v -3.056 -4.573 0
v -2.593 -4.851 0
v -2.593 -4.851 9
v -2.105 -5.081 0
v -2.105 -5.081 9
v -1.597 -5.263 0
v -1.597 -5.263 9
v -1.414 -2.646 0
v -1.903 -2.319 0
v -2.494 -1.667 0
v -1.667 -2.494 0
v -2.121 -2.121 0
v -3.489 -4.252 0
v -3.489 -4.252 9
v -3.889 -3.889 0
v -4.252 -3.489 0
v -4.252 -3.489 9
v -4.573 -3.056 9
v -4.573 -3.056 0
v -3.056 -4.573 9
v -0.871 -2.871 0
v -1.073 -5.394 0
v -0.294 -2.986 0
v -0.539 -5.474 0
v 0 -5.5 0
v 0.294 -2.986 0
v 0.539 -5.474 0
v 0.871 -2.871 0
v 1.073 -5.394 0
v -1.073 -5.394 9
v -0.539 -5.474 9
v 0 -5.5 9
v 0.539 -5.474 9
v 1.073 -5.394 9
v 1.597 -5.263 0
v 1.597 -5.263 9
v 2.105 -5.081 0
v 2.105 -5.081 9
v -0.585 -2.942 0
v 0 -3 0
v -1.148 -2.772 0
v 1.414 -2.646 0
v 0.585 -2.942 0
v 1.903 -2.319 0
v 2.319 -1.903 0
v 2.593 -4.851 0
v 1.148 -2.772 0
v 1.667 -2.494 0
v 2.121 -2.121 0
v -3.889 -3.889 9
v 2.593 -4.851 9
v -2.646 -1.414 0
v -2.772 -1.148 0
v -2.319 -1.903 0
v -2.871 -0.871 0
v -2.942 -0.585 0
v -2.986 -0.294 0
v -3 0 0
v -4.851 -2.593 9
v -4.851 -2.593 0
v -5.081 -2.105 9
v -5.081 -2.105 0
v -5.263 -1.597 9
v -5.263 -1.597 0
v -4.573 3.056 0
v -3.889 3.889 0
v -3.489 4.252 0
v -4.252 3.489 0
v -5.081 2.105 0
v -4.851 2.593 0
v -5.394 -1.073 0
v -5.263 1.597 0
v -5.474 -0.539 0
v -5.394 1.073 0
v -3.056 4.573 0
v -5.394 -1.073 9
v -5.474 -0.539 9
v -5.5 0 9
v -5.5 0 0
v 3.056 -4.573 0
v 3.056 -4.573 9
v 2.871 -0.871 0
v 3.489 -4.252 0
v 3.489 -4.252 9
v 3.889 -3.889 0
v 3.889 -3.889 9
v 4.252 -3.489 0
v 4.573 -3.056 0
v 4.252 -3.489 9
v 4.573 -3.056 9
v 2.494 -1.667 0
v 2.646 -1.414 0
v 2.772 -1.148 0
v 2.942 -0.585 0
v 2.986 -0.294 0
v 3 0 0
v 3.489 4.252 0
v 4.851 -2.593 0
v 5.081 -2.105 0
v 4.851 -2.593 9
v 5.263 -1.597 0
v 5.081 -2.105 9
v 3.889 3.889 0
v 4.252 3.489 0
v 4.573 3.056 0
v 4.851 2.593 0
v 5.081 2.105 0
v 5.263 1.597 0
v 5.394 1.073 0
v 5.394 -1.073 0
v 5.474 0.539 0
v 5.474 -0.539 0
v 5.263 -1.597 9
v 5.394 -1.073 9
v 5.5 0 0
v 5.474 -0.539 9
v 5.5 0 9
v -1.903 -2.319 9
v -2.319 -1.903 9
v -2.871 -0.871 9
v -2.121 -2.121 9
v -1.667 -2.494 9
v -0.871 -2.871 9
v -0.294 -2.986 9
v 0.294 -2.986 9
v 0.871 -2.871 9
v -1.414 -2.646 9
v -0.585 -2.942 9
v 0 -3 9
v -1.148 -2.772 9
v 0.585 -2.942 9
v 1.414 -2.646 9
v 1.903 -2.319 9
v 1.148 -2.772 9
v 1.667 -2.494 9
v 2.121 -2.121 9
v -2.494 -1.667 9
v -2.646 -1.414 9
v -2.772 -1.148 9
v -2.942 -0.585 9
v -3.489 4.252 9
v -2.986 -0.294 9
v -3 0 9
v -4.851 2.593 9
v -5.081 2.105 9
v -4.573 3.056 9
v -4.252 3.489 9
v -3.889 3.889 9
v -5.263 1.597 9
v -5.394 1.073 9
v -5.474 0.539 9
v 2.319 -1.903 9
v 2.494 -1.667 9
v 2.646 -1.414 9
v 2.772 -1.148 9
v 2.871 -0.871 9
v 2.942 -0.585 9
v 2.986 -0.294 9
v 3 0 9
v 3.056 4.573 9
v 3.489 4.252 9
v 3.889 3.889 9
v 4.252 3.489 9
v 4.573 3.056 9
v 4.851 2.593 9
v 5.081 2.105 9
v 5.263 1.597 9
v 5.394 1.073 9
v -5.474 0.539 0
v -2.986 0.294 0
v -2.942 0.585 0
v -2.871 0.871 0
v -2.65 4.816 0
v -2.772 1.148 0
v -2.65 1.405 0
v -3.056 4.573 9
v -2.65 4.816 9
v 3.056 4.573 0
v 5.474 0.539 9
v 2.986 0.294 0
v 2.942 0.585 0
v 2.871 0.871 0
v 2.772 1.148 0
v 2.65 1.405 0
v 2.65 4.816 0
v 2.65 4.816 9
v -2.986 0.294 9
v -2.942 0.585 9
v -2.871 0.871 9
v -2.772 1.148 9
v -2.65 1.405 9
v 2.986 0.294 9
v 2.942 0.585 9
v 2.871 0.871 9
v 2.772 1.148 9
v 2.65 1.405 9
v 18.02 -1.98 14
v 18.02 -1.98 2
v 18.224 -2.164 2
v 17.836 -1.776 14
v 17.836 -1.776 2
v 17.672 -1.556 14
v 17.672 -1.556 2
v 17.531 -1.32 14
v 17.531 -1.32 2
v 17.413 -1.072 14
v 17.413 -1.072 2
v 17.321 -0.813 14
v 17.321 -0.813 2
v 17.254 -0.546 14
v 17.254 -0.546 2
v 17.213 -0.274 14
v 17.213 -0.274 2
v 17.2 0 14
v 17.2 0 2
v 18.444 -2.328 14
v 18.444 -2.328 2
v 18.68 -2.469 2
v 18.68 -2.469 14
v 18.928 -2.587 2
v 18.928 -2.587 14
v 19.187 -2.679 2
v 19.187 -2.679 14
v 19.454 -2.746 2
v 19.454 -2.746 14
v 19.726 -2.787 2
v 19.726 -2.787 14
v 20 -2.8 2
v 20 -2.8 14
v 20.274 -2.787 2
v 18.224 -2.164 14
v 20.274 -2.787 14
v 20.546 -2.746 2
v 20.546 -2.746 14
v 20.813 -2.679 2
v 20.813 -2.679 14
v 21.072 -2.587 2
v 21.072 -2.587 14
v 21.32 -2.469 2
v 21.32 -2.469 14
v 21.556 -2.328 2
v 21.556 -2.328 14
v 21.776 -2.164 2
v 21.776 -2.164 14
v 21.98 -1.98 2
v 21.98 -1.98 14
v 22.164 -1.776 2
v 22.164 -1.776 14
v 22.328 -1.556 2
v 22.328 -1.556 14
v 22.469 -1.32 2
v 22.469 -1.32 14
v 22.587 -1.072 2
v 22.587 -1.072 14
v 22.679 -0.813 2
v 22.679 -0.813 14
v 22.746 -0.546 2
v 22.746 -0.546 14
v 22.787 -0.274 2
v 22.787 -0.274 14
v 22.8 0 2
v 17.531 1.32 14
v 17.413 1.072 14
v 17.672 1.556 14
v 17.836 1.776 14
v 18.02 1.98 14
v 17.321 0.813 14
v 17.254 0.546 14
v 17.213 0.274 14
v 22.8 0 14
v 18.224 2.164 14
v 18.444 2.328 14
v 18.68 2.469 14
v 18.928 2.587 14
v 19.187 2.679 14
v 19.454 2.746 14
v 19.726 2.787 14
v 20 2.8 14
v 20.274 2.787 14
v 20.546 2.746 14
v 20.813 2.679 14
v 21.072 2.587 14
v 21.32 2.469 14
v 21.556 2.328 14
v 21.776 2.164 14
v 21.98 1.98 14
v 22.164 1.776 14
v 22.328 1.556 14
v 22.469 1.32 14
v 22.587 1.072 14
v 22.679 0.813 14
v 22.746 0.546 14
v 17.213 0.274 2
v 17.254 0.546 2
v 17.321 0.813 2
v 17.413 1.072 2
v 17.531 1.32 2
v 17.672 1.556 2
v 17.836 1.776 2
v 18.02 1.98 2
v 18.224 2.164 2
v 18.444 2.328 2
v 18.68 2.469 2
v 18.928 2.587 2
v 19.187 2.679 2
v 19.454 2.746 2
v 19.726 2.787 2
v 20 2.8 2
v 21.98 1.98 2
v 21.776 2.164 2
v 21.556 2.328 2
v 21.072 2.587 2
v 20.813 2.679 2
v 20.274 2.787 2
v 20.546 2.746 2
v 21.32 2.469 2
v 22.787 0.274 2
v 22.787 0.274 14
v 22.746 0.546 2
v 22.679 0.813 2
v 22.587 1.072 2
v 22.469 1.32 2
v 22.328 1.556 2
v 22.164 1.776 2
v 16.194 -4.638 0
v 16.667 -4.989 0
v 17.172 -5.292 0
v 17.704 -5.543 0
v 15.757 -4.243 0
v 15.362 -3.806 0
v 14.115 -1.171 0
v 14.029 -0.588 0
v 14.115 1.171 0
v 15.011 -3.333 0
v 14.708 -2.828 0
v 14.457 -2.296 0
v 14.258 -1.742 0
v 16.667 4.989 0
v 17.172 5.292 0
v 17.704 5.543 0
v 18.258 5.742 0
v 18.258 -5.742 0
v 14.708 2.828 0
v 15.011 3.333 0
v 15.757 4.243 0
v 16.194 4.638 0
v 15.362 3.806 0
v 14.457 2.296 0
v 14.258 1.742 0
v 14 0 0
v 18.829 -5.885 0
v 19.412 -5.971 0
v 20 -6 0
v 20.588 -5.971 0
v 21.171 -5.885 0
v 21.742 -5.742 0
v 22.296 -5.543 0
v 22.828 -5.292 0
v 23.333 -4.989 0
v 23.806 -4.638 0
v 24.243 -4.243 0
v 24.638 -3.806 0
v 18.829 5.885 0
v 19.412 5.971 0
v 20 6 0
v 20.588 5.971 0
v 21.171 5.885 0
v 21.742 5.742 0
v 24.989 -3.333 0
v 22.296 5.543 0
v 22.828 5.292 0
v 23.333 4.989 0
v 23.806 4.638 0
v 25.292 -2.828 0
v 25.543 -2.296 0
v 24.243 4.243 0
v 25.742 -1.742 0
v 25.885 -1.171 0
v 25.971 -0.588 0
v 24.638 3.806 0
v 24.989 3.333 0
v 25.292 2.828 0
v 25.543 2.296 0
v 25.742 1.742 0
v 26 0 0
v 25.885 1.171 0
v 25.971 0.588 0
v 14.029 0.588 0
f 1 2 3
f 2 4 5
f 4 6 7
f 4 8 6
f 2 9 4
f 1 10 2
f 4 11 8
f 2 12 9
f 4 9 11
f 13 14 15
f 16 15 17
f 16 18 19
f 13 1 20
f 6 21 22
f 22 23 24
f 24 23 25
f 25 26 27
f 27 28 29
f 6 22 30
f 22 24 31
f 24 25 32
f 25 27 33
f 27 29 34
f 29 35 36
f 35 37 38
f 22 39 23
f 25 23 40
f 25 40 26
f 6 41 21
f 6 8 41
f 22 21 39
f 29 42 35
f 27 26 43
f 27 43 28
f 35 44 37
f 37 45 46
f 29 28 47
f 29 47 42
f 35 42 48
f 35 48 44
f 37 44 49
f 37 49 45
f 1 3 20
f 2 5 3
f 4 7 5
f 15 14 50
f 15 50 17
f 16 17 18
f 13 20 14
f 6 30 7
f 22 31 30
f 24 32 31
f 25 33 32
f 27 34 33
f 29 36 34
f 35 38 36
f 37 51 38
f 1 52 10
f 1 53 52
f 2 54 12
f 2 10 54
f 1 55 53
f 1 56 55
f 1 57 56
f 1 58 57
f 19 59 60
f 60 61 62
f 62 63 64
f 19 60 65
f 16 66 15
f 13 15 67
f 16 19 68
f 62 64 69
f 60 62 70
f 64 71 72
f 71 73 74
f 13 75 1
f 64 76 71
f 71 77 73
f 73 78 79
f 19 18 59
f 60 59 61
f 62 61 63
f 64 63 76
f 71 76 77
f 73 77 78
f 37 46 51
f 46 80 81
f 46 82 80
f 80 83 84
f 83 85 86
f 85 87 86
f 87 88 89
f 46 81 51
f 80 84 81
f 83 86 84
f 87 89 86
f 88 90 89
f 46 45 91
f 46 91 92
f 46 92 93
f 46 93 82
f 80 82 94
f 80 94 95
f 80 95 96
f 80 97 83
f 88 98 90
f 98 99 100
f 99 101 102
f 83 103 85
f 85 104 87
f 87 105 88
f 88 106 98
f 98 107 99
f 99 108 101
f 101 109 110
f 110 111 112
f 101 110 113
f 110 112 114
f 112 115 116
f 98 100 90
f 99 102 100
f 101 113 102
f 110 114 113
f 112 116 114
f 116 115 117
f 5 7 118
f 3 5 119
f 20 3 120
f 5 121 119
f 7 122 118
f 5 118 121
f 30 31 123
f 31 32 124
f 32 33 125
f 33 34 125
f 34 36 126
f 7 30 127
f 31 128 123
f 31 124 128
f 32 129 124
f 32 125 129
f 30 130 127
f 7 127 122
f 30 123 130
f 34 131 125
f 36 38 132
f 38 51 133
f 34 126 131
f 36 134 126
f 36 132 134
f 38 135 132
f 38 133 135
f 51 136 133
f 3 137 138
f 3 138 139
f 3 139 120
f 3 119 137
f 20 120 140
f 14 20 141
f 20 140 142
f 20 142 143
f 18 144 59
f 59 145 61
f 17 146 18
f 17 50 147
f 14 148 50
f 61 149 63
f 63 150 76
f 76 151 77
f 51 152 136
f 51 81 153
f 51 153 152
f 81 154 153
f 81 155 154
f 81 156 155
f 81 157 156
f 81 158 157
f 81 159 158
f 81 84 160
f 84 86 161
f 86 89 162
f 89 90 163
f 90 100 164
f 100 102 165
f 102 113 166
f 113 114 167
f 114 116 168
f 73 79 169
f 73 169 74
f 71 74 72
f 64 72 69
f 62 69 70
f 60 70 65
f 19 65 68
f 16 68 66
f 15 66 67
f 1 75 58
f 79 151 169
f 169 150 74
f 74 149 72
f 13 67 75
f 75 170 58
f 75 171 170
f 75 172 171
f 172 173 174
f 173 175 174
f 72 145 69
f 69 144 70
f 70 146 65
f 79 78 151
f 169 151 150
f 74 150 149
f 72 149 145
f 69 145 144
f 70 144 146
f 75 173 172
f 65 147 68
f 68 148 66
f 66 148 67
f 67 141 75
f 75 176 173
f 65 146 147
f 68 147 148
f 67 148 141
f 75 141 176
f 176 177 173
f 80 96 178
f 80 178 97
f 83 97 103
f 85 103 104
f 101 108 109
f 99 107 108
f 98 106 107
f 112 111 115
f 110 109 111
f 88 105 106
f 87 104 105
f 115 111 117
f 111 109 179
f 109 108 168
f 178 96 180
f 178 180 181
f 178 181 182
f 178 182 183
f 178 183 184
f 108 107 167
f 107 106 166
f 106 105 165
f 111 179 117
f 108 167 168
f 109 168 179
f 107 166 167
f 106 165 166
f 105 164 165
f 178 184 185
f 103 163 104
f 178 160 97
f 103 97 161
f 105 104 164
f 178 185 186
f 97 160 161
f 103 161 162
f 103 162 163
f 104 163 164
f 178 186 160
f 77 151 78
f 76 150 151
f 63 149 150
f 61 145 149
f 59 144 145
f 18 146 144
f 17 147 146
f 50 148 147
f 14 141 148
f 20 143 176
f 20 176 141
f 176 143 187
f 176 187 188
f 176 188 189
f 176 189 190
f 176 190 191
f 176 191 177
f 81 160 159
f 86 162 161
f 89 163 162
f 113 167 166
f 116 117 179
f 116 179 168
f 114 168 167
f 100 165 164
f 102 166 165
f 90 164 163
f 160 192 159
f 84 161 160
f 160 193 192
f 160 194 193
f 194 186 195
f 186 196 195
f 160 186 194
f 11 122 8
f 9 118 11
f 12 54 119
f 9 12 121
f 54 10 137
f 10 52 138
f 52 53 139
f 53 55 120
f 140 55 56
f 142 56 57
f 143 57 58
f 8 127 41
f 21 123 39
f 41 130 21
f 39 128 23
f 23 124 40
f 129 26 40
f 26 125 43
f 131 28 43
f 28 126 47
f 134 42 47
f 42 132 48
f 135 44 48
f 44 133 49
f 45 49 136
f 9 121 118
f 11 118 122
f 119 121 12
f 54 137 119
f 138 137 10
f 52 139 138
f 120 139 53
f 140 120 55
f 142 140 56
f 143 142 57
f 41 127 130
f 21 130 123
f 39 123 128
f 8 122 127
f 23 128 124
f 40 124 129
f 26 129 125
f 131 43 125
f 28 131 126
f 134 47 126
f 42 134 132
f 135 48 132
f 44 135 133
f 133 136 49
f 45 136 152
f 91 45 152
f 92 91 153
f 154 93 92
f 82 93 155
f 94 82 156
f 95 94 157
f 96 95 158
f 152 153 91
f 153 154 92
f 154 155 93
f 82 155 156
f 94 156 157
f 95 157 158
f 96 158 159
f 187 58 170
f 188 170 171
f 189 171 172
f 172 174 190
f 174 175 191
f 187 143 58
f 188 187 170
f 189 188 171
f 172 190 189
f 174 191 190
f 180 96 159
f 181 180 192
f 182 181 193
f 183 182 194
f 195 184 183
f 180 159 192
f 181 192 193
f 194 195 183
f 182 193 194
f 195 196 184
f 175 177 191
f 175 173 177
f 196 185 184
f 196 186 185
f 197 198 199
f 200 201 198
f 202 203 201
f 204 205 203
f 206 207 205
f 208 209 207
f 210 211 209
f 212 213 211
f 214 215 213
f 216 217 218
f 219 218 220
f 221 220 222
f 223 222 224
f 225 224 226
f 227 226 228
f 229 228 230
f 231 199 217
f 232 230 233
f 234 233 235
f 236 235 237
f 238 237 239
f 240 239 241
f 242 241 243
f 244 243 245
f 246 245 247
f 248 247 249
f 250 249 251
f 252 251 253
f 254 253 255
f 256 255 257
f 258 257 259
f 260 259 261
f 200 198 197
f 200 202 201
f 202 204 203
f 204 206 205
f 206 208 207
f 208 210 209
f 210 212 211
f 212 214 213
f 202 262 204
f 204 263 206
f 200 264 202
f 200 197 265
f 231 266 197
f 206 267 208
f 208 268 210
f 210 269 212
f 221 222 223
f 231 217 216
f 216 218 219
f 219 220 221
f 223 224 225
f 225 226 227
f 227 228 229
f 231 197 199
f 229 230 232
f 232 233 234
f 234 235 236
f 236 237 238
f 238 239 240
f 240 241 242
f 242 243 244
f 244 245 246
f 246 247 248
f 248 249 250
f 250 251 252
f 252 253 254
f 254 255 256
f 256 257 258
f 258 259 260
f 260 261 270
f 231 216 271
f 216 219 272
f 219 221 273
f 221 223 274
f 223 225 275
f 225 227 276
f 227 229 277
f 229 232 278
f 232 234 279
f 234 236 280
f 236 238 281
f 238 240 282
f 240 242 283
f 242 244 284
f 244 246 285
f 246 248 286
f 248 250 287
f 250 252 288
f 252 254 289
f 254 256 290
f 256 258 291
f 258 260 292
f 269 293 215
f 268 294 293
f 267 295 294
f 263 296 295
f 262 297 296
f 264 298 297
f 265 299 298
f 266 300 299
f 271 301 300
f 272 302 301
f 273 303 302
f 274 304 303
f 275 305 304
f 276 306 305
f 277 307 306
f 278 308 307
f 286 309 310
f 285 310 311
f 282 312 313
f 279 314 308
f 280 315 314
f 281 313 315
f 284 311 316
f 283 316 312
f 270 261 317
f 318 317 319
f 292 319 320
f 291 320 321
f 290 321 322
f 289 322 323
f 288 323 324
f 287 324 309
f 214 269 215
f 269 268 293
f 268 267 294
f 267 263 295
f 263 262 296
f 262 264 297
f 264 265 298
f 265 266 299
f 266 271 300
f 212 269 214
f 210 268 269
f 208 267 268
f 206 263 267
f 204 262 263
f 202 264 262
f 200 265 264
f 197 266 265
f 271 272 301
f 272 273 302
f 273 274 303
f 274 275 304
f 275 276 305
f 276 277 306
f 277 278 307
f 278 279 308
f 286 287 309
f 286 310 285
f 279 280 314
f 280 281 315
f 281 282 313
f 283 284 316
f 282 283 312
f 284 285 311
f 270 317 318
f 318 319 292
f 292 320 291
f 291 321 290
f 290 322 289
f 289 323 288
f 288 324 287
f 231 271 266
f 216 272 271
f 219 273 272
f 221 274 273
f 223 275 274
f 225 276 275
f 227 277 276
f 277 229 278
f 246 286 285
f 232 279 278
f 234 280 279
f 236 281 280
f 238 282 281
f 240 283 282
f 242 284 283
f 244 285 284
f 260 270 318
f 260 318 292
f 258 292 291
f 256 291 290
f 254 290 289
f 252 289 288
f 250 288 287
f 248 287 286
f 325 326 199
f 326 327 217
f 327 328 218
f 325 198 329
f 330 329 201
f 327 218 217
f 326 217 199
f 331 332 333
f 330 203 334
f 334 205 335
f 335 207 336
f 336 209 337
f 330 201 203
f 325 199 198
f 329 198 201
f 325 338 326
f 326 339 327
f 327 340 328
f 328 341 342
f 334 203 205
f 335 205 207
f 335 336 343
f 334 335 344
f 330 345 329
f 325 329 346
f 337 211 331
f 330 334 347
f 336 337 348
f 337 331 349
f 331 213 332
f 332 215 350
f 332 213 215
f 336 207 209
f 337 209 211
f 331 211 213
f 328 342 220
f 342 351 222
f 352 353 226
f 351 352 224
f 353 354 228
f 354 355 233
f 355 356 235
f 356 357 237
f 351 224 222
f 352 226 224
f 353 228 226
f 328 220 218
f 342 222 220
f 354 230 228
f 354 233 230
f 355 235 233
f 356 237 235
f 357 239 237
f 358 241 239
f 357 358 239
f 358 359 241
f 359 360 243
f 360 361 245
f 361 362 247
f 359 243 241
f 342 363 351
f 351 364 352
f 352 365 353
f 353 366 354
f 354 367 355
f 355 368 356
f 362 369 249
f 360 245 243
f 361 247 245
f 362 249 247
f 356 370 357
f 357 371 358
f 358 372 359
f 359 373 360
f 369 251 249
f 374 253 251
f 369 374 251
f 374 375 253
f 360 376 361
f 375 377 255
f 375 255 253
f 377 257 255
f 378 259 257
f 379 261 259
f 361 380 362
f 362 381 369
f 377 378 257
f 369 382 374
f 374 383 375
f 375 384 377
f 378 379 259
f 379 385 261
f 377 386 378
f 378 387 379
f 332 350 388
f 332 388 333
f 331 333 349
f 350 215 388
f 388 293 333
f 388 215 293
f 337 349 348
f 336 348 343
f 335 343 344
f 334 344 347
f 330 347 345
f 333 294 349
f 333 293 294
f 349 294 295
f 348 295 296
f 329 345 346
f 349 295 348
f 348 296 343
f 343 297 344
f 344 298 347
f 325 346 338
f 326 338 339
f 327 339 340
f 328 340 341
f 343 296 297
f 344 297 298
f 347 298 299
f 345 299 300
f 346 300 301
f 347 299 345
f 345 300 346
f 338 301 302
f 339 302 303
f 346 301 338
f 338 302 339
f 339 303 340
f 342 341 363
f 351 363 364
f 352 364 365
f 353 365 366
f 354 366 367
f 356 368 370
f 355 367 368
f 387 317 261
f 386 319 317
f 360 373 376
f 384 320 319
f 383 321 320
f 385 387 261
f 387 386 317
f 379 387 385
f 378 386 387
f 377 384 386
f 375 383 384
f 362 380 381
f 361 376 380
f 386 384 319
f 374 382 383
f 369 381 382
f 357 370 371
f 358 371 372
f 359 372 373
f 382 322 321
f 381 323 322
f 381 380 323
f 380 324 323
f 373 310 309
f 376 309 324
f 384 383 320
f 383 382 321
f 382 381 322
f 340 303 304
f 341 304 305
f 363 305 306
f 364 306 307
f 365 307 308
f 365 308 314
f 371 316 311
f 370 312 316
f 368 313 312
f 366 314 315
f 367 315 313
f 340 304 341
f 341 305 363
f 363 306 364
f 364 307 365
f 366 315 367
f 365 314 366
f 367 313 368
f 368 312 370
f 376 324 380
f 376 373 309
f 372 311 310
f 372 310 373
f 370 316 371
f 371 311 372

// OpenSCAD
// file: lib/soldier.scad
// toy-soldiers shared library
// All figures and weapons include this file. The grip interface constants
// are the contract: any weapon whose bar uses GRIP_BAR_D fits any figure
// whose hand uses GRIP_HOLE_D / GRIP_SLOT_W.

$fn = $preview ? 32 : 64;

// ---------------------------------------------------------------
// Grip interface — shared contract between figures and weapons
// ---------------------------------------------------------------
GRIP_BAR_D  = 5.6;  // weapon grip-bar diameter
GRIP_HOLE_D = 6.0;  // hand hole diameter (0.4mm clearance for FDM)
GRIP_SLOT_W = 5.3;  // C-opening width; bar snaps through the front
HAND_OD     = 11;   // hand outer diameter
HAND_H      = 9;    // hand height
GRIP_BAR_L  = 14;   // standard bar length (sticks out below the hand)

// ---------------------------------------------------------------
// Figure proportions (~70mm tall incl. base, +Y is forward)
// ---------------------------------------------------------------
BASE_D  = 26;  BASE_H  = 4;
LEG_H   = 22;  LEG_D   = 9;  HIP_X = 5.5;   // leg centre offset from middle
TORSO_H = 24;  TORSO_W = 20; TORSO_WAIST = 16; TORSO_D = 12;
HEAD_D  = 14;  NECK_H  = 3;

HIP_Z      = BASE_H + LEG_H;                 // 26
TORSO_Z0   = HIP_Z - 1;                      // torso overlaps hips 1mm
TORSO_Z1   = TORSO_Z0 + TORSO_H;             // 49
SHOULDER_Z = TORSO_Z1 - 3;                   // 46
SHOULDER_X = TORSO_W/2 + 1;                  // arm root
HEAD_CZ    = TORSO_Z1 + NECK_H + HEAD_D/2;   // head centre

// ---------------------------------------------------------------
// Primitives
// ---------------------------------------------------------------
module rounded_box(size, r=2)
    hull()
        for (x=[-1,1], y=[-1,1], z=[-1,1])
            translate([x*(size[0]/2-r), y*(size[1]/2-r), z*(size[2]/2-r)])
                sphere(r=r);

module limb(a, b, ra=4.5, rb=4)   // thick tapered limb between two points
    hull() { translate(a) sphere(r=ra); translate(b) sphere(r=rb); }

// ---------------------------------------------------------------
// Body parts
// ---------------------------------------------------------------
module base()
    cylinder(d1=BASE_D, d2=BASE_D-2, h=BASE_H);

module leg(x)
    union() {
        translate([x, 0, BASE_H-1]) cylinder(d=LEG_D, h=LEG_H+2);
        // boot: rests on the base, so no overhang
        translate([x, 3.5, BASE_H + 2.5]) rounded_box([LEG_D+1, 13, 5], 2);
    }

module torso()
    hull() {
        translate([0, 0, TORSO_Z0 + 2])
            rounded_box([TORSO_WAIST, TORSO_D-1, 4], 2);
        translate([0, 0, TORSO_Z1 - 2.5])
            rounded_box([TORSO_W, TORSO_D, 5], 2);
    }

module head() {
    // stout neck; the sphere's underside meets it at <45deg so no supports
    translate([0, 0, TORSO_Z1 - 1]) cylinder(d=9.5, h=NECK_H + 3);
    translate([0, 0, HEAD_CZ]) sphere(d=HEAD_D);
}

module helmet()
    translate([0, 0, HEAD_CZ + 1]) {
        difference() {
            sphere(d=HEAD_D + 3.5);
            translate([0, 0, -HEAD_D/2]) cube(HEAD_D*2, center=true);
        }
        // brim with 45-degree underside chamfer
        cylinder(d1=HEAD_D + 1, d2=HEAD_D + 5, h=2);
    }

module cap()   // officer's peaked cap
    translate([0, 0, HEAD_CZ + HEAD_D/2 - 3.5]) {
        cylinder(d1=HEAD_D - 0.5, d2=HEAD_D + 1.5, h=4);
        translate([0, 0, 4]) cylinder(d=HEAD_D + 2, h=1.5);
        // peak: wedge jutting over the face, 45deg chamfered underside
        hull() {
            translate([0, HEAD_D/2 - 2, 1.25]) cube([11, 2, 2.5], center=true);
            translate([0, HEAD_D/2 + 3, 2.25]) cube([9, 1, 1.2], center=true);
        }
    }

module backpack()
    translate([0, -TORSO_D/2, SHOULDER_Z - 6])
        hull() {   // sloped underside back to the torso — printable
            translate([0, -1, -4]) rounded_box([13, 2, 4], 1);
            translate([0, -4, 2]) rounded_box([14, 6, 10], 2);
        }

// C-shaped grip hand, hole axis vertical, opening faces +Y (forward)
module grip_hand()
    difference() {
        cylinder(d=HAND_OD, h=HAND_H, center=true);
        cylinder(d=GRIP_HOLE_D, h=HAND_H + 2, center=true);
        translate([0, HAND_OD/4 + 0.5, 0])
            cube([GRIP_SLOT_W, HAND_OD/2 + 2, HAND_H + 2], center=true);
    }

module fist()
    sphere(d=9);

// ---------------------------------------------------------------
// Arms — s = +1 right, -1 left. Poses avoid >45-degree overhangs.
// ---------------------------------------------------------------
module arm(s, pose) {
    sh = [s*SHOULDER_X, 0, SHOULDER_Z];

    if (pose == "grip_side") {          // hand at the hip
        w = [s*(SHOULDER_X + 3), 4, SHOULDER_Z - 14];
        limb(sh, w);
        translate(w + [0, 1, -4]) grip_hand();
    }
    else if (pose == "grip_forward") {  // hand forward at waist height
        w = [s*(SHOULDER_X + 1), 9, SHOULDER_Z - 12];
        limb(sh, w);
        translate(w + [0, 2, -4]) grip_hand();
    }
    else if (pose == "grip_up") {       // bent arm, hand at shoulder height
        e = [s*(SHOULDER_X + 2), 3, SHOULDER_Z - 11];
        w = [s*(SHOULDER_X + 2), 9, SHOULDER_Z - 2];
        limb(sh, e);
        limb(e, w, 4, 4);
        translate(w + [0, 2, 2]) grip_hand();
    }
    else if (pose == "fist_side") {
        w = [s*(SHOULDER_X + 3), 3, SHOULDER_Z - 15];
        limb(sh, w);
        translate(w + [0, 0, -3]) fist();
    }
    else if (pose == "fist_forward") {
        w = [s*(SHOULDER_X + 1), 8, SHOULDER_Z - 13];
        limb(sh, w);
        translate(w + [0, 2, -2]) fist();
    }
    else if (pose == "point_up") {      // raised arm, ~40 degrees off vertical
        w = [s*(SHOULDER_X + 5), 6, SHOULDER_Z + 9];
        limb(sh, w);
        translate(w) sphere(d=8);
        translate(w) rotate([-40, s*15, 0]) cylinder(d=5, h=7);
    }
}

// ---------------------------------------------------------------
// Assembled soldier
// ---------------------------------------------------------------
module soldier(right_arm="grip_side", left_arm="fist_side",
               headgear="helmet", pack=false) {
    base();
    leg(-HIP_X); leg(HIP_X);
    torso();
    head();
    if (headgear == "helmet") helmet();
    if (headgear == "cap") cap();
    if (pack) backpack();
    arm( 1, right_arm);
    arm(-1, left_arm);
}

// ---------------------------------------------------------------
// Weapon helper — weapons are modelled in PRINT orientation:
// lying flat on the bed (z=0), length along X, "up in use" is +Y.
// The bar rests tangent on the bed so nothing floats.
// ---------------------------------------------------------------
module grip_bar(x, y_top, len=GRIP_BAR_L)
    translate([x, y_top, GRIP_BAR_D/2])
        rotate([90, 0, 0]) cylinder(d=GRIP_BAR_D, h=len);
// main file
// Fit-test coupon — PRINT THIS FIRST (10 min, a few grams).
// One grip hand + one bar. If the bar won't snap in or is too loose,
// tune GRIP_HOLE_D / GRIP_SLOT_W in lib/soldier.scad before printing figures.
include <lib/soldier.scad>

translate([0, 0, HAND_H/2]) grip_hand();

// bar with a flat base tab so it prints upright next to the hand
translate([20, 0, 0]) {
    cylinder(d=GRIP_BAR_D, h=GRIP_BAR_L);
    cylinder(d1=12, d2=GRIP_BAR_D, h=2);
}
